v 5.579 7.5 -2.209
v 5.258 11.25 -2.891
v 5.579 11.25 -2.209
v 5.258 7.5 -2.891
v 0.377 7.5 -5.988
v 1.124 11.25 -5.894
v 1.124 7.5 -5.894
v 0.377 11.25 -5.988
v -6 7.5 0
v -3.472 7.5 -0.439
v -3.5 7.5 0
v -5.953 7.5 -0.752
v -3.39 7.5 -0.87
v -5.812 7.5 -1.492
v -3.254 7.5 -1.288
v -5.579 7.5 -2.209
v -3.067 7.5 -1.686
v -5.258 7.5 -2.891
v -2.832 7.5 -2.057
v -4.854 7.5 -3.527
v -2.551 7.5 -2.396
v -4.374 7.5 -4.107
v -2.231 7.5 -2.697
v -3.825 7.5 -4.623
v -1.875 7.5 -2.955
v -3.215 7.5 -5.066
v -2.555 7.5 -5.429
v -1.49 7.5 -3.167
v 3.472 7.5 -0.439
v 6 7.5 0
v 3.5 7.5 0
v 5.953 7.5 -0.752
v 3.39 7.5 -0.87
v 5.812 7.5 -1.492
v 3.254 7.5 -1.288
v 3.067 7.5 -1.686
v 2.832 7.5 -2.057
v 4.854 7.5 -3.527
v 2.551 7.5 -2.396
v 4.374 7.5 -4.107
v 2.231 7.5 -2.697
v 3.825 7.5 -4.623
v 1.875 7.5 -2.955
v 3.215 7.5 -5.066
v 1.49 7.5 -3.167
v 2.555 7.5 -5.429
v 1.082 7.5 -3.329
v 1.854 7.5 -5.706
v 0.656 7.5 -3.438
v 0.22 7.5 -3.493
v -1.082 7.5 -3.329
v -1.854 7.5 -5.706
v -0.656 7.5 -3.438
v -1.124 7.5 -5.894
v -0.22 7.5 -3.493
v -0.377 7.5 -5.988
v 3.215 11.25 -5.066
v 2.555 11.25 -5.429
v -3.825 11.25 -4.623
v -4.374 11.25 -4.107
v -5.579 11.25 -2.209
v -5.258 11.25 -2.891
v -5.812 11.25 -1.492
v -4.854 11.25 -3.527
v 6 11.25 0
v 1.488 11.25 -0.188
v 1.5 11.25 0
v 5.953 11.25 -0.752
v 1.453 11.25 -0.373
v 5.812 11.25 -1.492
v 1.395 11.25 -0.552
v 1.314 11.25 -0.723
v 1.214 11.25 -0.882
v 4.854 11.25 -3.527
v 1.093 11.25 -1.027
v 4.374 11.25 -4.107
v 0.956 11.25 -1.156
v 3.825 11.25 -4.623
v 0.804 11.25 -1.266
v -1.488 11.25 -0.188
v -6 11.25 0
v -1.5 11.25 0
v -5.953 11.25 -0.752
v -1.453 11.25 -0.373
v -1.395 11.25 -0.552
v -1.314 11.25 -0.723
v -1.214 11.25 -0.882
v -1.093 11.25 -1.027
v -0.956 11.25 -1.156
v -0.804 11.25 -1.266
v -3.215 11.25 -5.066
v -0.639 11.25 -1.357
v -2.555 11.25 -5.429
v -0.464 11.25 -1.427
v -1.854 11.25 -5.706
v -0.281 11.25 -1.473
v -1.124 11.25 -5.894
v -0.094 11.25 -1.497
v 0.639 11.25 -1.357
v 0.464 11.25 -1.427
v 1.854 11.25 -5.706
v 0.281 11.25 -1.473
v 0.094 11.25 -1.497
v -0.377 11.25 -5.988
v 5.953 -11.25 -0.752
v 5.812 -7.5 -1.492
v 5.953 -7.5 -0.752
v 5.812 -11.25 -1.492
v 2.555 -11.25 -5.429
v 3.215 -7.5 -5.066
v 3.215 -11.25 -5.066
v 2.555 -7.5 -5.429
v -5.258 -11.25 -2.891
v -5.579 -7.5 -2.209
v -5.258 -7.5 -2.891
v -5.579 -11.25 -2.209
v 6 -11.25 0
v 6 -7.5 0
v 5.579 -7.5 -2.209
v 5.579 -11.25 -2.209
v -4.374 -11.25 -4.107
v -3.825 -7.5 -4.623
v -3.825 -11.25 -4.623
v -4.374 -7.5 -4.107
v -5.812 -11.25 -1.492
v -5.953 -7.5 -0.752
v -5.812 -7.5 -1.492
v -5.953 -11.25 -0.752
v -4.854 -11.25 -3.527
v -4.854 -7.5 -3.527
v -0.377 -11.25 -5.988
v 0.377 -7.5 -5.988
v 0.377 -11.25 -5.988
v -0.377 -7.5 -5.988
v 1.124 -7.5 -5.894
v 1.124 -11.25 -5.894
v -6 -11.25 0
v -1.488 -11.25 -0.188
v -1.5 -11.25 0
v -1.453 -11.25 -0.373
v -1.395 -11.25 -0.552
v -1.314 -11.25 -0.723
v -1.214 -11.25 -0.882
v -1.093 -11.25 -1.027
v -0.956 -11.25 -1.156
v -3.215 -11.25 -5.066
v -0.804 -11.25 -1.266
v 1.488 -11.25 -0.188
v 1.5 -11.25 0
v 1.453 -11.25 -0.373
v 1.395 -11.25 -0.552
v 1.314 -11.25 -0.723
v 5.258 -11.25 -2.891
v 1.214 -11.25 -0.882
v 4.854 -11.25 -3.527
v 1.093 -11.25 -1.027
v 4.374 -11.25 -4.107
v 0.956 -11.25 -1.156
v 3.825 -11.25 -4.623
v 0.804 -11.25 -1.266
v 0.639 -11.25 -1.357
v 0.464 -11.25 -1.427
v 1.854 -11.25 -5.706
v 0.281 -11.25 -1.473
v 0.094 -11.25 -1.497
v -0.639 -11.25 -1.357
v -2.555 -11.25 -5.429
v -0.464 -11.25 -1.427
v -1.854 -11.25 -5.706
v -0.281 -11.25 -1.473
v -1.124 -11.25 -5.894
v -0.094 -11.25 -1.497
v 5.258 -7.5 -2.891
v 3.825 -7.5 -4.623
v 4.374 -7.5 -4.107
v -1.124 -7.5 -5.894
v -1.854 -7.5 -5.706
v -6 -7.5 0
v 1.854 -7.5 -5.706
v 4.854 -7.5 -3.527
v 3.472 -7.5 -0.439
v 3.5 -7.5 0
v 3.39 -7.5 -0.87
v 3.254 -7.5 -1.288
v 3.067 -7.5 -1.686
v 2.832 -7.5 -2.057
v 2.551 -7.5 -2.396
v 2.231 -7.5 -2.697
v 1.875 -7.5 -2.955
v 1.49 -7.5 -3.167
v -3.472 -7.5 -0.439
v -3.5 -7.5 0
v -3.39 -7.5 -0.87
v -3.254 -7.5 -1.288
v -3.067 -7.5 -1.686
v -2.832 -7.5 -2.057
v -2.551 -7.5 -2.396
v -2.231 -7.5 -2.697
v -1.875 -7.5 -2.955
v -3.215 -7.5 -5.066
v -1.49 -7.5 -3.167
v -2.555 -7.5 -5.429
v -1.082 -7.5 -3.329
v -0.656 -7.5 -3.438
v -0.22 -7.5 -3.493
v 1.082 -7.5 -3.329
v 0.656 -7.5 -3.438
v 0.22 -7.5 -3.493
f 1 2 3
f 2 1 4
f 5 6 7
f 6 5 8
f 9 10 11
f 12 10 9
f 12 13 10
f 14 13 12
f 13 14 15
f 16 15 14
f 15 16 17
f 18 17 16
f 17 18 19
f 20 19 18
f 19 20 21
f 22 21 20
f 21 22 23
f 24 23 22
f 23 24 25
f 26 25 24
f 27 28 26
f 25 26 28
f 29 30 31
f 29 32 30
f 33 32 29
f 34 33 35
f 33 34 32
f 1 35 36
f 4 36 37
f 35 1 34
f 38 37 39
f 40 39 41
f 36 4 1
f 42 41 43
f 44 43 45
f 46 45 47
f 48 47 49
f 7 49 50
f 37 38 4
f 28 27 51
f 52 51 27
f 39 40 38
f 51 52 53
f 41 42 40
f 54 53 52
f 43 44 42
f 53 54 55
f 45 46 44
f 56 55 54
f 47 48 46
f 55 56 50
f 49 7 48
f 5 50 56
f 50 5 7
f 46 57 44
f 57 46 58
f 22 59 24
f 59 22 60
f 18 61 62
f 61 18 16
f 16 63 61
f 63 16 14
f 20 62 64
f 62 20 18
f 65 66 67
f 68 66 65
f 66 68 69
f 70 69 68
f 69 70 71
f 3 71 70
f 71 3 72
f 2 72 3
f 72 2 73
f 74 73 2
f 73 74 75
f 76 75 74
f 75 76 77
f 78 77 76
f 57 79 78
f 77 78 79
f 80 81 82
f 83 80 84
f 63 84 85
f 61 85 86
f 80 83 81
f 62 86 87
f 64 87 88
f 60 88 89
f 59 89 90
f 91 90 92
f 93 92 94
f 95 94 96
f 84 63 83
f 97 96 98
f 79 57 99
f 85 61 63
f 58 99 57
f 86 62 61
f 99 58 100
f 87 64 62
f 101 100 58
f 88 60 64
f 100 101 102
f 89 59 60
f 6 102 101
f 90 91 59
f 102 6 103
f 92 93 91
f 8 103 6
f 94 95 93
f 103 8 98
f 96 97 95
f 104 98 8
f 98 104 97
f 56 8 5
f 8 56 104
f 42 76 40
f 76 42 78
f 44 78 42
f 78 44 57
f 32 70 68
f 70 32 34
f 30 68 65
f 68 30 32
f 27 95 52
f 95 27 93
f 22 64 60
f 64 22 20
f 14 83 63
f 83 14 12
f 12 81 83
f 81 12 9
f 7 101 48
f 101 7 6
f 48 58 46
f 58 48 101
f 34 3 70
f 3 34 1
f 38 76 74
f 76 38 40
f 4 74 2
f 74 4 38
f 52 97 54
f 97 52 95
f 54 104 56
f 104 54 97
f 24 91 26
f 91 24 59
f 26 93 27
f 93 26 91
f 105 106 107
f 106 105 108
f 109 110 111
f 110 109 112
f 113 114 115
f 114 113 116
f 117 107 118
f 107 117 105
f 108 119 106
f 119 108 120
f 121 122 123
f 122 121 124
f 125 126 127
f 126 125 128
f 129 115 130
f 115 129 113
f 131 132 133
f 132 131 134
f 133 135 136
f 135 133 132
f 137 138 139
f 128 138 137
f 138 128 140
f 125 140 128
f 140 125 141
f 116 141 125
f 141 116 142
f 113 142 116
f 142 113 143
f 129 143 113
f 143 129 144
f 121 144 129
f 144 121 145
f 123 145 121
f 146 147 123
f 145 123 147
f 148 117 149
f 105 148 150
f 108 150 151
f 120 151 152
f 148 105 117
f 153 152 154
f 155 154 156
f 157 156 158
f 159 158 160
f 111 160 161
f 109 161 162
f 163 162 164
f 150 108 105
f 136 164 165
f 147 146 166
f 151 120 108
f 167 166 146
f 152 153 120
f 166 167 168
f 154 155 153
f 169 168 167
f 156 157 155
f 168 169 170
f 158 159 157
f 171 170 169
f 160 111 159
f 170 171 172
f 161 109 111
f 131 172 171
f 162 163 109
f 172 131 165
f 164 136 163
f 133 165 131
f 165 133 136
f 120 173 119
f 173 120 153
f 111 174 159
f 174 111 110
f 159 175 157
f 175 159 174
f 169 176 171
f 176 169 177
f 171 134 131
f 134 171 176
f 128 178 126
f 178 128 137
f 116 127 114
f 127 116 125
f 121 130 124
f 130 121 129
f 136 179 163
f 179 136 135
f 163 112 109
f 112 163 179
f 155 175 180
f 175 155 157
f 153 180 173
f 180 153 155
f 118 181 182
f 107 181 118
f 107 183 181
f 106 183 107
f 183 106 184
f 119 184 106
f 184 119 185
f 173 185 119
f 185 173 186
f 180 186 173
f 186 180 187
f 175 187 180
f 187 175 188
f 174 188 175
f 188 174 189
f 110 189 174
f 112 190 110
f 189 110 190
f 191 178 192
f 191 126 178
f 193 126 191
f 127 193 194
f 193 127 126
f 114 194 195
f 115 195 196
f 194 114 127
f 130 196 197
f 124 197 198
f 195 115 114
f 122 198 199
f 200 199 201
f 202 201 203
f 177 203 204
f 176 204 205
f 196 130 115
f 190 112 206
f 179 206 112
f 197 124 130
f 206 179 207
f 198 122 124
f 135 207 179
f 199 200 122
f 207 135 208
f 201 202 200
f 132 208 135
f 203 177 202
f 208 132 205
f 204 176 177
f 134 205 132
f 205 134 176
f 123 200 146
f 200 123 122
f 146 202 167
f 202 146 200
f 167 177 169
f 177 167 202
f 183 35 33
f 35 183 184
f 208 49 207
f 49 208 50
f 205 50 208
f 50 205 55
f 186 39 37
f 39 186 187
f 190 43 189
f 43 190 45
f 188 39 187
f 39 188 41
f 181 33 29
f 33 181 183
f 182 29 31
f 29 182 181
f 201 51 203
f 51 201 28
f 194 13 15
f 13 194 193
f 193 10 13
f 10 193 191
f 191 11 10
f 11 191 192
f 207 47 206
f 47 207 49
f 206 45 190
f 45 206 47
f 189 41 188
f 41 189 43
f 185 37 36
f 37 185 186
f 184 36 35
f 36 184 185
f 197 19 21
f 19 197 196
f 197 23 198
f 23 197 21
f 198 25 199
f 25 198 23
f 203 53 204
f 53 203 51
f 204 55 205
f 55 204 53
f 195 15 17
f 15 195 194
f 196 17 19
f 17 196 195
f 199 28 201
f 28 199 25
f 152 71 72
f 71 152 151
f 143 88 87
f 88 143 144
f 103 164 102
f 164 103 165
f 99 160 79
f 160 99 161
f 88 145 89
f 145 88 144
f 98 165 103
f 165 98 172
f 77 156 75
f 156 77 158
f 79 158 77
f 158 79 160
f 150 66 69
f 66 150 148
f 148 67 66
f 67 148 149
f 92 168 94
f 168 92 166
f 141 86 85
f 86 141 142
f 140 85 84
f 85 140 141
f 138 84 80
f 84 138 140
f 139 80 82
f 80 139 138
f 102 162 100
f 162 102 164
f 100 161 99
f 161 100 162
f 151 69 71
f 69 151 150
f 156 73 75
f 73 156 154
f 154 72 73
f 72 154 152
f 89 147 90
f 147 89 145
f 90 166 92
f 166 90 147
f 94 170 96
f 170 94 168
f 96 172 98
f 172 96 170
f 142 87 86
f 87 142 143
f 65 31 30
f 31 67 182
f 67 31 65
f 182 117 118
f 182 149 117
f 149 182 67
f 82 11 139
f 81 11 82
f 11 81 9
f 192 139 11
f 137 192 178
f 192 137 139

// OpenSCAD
$fn = 50;


difference() {
	union() {
		translate(v = [0, 11.2500000000, 0.0000000000]) {
			rotate(a = [90, 0, 0]) {
				cylinder(h = 3.7500000000, r = 6.0000000000);
			}
		}
		translate(v = [0, -7.5000000000, 0.0000000000]) {
			rotate(a = [90, 0, 0]) {
				cylinder(h = 3.7500000000, r = 6.0000000000);
			}
		}
		translate(v = [0, 11.2500000000, 0.0000000000]) {
			rotate(a = [90, 0, 0]) {
				cylinder(h = 22.5000000000, r = 3.5000000000);
			}
		}
	}
	union() {
		translate(v = [0, 11.2500000000, 0.0000000000]) {
			rotate(a = [90, 0, 0]) {
				cylinder(h = 22.5000000000, r = 1.5000000000);
			}
		}
		translate(v = [-250.0000000000, -250.0000000000, 0]) {
			cube(size = [500, 500, 500]);
		}
		translate(v = [-250.0000000000, -250.0000000000, 0]) {
			cube(size = [500, 500, 500]);
		}
		translate(v = [-250.0000000000, -250.0000000000, 0]) {
			cube(size = [500, 500, 500]);
		}
	}
}
